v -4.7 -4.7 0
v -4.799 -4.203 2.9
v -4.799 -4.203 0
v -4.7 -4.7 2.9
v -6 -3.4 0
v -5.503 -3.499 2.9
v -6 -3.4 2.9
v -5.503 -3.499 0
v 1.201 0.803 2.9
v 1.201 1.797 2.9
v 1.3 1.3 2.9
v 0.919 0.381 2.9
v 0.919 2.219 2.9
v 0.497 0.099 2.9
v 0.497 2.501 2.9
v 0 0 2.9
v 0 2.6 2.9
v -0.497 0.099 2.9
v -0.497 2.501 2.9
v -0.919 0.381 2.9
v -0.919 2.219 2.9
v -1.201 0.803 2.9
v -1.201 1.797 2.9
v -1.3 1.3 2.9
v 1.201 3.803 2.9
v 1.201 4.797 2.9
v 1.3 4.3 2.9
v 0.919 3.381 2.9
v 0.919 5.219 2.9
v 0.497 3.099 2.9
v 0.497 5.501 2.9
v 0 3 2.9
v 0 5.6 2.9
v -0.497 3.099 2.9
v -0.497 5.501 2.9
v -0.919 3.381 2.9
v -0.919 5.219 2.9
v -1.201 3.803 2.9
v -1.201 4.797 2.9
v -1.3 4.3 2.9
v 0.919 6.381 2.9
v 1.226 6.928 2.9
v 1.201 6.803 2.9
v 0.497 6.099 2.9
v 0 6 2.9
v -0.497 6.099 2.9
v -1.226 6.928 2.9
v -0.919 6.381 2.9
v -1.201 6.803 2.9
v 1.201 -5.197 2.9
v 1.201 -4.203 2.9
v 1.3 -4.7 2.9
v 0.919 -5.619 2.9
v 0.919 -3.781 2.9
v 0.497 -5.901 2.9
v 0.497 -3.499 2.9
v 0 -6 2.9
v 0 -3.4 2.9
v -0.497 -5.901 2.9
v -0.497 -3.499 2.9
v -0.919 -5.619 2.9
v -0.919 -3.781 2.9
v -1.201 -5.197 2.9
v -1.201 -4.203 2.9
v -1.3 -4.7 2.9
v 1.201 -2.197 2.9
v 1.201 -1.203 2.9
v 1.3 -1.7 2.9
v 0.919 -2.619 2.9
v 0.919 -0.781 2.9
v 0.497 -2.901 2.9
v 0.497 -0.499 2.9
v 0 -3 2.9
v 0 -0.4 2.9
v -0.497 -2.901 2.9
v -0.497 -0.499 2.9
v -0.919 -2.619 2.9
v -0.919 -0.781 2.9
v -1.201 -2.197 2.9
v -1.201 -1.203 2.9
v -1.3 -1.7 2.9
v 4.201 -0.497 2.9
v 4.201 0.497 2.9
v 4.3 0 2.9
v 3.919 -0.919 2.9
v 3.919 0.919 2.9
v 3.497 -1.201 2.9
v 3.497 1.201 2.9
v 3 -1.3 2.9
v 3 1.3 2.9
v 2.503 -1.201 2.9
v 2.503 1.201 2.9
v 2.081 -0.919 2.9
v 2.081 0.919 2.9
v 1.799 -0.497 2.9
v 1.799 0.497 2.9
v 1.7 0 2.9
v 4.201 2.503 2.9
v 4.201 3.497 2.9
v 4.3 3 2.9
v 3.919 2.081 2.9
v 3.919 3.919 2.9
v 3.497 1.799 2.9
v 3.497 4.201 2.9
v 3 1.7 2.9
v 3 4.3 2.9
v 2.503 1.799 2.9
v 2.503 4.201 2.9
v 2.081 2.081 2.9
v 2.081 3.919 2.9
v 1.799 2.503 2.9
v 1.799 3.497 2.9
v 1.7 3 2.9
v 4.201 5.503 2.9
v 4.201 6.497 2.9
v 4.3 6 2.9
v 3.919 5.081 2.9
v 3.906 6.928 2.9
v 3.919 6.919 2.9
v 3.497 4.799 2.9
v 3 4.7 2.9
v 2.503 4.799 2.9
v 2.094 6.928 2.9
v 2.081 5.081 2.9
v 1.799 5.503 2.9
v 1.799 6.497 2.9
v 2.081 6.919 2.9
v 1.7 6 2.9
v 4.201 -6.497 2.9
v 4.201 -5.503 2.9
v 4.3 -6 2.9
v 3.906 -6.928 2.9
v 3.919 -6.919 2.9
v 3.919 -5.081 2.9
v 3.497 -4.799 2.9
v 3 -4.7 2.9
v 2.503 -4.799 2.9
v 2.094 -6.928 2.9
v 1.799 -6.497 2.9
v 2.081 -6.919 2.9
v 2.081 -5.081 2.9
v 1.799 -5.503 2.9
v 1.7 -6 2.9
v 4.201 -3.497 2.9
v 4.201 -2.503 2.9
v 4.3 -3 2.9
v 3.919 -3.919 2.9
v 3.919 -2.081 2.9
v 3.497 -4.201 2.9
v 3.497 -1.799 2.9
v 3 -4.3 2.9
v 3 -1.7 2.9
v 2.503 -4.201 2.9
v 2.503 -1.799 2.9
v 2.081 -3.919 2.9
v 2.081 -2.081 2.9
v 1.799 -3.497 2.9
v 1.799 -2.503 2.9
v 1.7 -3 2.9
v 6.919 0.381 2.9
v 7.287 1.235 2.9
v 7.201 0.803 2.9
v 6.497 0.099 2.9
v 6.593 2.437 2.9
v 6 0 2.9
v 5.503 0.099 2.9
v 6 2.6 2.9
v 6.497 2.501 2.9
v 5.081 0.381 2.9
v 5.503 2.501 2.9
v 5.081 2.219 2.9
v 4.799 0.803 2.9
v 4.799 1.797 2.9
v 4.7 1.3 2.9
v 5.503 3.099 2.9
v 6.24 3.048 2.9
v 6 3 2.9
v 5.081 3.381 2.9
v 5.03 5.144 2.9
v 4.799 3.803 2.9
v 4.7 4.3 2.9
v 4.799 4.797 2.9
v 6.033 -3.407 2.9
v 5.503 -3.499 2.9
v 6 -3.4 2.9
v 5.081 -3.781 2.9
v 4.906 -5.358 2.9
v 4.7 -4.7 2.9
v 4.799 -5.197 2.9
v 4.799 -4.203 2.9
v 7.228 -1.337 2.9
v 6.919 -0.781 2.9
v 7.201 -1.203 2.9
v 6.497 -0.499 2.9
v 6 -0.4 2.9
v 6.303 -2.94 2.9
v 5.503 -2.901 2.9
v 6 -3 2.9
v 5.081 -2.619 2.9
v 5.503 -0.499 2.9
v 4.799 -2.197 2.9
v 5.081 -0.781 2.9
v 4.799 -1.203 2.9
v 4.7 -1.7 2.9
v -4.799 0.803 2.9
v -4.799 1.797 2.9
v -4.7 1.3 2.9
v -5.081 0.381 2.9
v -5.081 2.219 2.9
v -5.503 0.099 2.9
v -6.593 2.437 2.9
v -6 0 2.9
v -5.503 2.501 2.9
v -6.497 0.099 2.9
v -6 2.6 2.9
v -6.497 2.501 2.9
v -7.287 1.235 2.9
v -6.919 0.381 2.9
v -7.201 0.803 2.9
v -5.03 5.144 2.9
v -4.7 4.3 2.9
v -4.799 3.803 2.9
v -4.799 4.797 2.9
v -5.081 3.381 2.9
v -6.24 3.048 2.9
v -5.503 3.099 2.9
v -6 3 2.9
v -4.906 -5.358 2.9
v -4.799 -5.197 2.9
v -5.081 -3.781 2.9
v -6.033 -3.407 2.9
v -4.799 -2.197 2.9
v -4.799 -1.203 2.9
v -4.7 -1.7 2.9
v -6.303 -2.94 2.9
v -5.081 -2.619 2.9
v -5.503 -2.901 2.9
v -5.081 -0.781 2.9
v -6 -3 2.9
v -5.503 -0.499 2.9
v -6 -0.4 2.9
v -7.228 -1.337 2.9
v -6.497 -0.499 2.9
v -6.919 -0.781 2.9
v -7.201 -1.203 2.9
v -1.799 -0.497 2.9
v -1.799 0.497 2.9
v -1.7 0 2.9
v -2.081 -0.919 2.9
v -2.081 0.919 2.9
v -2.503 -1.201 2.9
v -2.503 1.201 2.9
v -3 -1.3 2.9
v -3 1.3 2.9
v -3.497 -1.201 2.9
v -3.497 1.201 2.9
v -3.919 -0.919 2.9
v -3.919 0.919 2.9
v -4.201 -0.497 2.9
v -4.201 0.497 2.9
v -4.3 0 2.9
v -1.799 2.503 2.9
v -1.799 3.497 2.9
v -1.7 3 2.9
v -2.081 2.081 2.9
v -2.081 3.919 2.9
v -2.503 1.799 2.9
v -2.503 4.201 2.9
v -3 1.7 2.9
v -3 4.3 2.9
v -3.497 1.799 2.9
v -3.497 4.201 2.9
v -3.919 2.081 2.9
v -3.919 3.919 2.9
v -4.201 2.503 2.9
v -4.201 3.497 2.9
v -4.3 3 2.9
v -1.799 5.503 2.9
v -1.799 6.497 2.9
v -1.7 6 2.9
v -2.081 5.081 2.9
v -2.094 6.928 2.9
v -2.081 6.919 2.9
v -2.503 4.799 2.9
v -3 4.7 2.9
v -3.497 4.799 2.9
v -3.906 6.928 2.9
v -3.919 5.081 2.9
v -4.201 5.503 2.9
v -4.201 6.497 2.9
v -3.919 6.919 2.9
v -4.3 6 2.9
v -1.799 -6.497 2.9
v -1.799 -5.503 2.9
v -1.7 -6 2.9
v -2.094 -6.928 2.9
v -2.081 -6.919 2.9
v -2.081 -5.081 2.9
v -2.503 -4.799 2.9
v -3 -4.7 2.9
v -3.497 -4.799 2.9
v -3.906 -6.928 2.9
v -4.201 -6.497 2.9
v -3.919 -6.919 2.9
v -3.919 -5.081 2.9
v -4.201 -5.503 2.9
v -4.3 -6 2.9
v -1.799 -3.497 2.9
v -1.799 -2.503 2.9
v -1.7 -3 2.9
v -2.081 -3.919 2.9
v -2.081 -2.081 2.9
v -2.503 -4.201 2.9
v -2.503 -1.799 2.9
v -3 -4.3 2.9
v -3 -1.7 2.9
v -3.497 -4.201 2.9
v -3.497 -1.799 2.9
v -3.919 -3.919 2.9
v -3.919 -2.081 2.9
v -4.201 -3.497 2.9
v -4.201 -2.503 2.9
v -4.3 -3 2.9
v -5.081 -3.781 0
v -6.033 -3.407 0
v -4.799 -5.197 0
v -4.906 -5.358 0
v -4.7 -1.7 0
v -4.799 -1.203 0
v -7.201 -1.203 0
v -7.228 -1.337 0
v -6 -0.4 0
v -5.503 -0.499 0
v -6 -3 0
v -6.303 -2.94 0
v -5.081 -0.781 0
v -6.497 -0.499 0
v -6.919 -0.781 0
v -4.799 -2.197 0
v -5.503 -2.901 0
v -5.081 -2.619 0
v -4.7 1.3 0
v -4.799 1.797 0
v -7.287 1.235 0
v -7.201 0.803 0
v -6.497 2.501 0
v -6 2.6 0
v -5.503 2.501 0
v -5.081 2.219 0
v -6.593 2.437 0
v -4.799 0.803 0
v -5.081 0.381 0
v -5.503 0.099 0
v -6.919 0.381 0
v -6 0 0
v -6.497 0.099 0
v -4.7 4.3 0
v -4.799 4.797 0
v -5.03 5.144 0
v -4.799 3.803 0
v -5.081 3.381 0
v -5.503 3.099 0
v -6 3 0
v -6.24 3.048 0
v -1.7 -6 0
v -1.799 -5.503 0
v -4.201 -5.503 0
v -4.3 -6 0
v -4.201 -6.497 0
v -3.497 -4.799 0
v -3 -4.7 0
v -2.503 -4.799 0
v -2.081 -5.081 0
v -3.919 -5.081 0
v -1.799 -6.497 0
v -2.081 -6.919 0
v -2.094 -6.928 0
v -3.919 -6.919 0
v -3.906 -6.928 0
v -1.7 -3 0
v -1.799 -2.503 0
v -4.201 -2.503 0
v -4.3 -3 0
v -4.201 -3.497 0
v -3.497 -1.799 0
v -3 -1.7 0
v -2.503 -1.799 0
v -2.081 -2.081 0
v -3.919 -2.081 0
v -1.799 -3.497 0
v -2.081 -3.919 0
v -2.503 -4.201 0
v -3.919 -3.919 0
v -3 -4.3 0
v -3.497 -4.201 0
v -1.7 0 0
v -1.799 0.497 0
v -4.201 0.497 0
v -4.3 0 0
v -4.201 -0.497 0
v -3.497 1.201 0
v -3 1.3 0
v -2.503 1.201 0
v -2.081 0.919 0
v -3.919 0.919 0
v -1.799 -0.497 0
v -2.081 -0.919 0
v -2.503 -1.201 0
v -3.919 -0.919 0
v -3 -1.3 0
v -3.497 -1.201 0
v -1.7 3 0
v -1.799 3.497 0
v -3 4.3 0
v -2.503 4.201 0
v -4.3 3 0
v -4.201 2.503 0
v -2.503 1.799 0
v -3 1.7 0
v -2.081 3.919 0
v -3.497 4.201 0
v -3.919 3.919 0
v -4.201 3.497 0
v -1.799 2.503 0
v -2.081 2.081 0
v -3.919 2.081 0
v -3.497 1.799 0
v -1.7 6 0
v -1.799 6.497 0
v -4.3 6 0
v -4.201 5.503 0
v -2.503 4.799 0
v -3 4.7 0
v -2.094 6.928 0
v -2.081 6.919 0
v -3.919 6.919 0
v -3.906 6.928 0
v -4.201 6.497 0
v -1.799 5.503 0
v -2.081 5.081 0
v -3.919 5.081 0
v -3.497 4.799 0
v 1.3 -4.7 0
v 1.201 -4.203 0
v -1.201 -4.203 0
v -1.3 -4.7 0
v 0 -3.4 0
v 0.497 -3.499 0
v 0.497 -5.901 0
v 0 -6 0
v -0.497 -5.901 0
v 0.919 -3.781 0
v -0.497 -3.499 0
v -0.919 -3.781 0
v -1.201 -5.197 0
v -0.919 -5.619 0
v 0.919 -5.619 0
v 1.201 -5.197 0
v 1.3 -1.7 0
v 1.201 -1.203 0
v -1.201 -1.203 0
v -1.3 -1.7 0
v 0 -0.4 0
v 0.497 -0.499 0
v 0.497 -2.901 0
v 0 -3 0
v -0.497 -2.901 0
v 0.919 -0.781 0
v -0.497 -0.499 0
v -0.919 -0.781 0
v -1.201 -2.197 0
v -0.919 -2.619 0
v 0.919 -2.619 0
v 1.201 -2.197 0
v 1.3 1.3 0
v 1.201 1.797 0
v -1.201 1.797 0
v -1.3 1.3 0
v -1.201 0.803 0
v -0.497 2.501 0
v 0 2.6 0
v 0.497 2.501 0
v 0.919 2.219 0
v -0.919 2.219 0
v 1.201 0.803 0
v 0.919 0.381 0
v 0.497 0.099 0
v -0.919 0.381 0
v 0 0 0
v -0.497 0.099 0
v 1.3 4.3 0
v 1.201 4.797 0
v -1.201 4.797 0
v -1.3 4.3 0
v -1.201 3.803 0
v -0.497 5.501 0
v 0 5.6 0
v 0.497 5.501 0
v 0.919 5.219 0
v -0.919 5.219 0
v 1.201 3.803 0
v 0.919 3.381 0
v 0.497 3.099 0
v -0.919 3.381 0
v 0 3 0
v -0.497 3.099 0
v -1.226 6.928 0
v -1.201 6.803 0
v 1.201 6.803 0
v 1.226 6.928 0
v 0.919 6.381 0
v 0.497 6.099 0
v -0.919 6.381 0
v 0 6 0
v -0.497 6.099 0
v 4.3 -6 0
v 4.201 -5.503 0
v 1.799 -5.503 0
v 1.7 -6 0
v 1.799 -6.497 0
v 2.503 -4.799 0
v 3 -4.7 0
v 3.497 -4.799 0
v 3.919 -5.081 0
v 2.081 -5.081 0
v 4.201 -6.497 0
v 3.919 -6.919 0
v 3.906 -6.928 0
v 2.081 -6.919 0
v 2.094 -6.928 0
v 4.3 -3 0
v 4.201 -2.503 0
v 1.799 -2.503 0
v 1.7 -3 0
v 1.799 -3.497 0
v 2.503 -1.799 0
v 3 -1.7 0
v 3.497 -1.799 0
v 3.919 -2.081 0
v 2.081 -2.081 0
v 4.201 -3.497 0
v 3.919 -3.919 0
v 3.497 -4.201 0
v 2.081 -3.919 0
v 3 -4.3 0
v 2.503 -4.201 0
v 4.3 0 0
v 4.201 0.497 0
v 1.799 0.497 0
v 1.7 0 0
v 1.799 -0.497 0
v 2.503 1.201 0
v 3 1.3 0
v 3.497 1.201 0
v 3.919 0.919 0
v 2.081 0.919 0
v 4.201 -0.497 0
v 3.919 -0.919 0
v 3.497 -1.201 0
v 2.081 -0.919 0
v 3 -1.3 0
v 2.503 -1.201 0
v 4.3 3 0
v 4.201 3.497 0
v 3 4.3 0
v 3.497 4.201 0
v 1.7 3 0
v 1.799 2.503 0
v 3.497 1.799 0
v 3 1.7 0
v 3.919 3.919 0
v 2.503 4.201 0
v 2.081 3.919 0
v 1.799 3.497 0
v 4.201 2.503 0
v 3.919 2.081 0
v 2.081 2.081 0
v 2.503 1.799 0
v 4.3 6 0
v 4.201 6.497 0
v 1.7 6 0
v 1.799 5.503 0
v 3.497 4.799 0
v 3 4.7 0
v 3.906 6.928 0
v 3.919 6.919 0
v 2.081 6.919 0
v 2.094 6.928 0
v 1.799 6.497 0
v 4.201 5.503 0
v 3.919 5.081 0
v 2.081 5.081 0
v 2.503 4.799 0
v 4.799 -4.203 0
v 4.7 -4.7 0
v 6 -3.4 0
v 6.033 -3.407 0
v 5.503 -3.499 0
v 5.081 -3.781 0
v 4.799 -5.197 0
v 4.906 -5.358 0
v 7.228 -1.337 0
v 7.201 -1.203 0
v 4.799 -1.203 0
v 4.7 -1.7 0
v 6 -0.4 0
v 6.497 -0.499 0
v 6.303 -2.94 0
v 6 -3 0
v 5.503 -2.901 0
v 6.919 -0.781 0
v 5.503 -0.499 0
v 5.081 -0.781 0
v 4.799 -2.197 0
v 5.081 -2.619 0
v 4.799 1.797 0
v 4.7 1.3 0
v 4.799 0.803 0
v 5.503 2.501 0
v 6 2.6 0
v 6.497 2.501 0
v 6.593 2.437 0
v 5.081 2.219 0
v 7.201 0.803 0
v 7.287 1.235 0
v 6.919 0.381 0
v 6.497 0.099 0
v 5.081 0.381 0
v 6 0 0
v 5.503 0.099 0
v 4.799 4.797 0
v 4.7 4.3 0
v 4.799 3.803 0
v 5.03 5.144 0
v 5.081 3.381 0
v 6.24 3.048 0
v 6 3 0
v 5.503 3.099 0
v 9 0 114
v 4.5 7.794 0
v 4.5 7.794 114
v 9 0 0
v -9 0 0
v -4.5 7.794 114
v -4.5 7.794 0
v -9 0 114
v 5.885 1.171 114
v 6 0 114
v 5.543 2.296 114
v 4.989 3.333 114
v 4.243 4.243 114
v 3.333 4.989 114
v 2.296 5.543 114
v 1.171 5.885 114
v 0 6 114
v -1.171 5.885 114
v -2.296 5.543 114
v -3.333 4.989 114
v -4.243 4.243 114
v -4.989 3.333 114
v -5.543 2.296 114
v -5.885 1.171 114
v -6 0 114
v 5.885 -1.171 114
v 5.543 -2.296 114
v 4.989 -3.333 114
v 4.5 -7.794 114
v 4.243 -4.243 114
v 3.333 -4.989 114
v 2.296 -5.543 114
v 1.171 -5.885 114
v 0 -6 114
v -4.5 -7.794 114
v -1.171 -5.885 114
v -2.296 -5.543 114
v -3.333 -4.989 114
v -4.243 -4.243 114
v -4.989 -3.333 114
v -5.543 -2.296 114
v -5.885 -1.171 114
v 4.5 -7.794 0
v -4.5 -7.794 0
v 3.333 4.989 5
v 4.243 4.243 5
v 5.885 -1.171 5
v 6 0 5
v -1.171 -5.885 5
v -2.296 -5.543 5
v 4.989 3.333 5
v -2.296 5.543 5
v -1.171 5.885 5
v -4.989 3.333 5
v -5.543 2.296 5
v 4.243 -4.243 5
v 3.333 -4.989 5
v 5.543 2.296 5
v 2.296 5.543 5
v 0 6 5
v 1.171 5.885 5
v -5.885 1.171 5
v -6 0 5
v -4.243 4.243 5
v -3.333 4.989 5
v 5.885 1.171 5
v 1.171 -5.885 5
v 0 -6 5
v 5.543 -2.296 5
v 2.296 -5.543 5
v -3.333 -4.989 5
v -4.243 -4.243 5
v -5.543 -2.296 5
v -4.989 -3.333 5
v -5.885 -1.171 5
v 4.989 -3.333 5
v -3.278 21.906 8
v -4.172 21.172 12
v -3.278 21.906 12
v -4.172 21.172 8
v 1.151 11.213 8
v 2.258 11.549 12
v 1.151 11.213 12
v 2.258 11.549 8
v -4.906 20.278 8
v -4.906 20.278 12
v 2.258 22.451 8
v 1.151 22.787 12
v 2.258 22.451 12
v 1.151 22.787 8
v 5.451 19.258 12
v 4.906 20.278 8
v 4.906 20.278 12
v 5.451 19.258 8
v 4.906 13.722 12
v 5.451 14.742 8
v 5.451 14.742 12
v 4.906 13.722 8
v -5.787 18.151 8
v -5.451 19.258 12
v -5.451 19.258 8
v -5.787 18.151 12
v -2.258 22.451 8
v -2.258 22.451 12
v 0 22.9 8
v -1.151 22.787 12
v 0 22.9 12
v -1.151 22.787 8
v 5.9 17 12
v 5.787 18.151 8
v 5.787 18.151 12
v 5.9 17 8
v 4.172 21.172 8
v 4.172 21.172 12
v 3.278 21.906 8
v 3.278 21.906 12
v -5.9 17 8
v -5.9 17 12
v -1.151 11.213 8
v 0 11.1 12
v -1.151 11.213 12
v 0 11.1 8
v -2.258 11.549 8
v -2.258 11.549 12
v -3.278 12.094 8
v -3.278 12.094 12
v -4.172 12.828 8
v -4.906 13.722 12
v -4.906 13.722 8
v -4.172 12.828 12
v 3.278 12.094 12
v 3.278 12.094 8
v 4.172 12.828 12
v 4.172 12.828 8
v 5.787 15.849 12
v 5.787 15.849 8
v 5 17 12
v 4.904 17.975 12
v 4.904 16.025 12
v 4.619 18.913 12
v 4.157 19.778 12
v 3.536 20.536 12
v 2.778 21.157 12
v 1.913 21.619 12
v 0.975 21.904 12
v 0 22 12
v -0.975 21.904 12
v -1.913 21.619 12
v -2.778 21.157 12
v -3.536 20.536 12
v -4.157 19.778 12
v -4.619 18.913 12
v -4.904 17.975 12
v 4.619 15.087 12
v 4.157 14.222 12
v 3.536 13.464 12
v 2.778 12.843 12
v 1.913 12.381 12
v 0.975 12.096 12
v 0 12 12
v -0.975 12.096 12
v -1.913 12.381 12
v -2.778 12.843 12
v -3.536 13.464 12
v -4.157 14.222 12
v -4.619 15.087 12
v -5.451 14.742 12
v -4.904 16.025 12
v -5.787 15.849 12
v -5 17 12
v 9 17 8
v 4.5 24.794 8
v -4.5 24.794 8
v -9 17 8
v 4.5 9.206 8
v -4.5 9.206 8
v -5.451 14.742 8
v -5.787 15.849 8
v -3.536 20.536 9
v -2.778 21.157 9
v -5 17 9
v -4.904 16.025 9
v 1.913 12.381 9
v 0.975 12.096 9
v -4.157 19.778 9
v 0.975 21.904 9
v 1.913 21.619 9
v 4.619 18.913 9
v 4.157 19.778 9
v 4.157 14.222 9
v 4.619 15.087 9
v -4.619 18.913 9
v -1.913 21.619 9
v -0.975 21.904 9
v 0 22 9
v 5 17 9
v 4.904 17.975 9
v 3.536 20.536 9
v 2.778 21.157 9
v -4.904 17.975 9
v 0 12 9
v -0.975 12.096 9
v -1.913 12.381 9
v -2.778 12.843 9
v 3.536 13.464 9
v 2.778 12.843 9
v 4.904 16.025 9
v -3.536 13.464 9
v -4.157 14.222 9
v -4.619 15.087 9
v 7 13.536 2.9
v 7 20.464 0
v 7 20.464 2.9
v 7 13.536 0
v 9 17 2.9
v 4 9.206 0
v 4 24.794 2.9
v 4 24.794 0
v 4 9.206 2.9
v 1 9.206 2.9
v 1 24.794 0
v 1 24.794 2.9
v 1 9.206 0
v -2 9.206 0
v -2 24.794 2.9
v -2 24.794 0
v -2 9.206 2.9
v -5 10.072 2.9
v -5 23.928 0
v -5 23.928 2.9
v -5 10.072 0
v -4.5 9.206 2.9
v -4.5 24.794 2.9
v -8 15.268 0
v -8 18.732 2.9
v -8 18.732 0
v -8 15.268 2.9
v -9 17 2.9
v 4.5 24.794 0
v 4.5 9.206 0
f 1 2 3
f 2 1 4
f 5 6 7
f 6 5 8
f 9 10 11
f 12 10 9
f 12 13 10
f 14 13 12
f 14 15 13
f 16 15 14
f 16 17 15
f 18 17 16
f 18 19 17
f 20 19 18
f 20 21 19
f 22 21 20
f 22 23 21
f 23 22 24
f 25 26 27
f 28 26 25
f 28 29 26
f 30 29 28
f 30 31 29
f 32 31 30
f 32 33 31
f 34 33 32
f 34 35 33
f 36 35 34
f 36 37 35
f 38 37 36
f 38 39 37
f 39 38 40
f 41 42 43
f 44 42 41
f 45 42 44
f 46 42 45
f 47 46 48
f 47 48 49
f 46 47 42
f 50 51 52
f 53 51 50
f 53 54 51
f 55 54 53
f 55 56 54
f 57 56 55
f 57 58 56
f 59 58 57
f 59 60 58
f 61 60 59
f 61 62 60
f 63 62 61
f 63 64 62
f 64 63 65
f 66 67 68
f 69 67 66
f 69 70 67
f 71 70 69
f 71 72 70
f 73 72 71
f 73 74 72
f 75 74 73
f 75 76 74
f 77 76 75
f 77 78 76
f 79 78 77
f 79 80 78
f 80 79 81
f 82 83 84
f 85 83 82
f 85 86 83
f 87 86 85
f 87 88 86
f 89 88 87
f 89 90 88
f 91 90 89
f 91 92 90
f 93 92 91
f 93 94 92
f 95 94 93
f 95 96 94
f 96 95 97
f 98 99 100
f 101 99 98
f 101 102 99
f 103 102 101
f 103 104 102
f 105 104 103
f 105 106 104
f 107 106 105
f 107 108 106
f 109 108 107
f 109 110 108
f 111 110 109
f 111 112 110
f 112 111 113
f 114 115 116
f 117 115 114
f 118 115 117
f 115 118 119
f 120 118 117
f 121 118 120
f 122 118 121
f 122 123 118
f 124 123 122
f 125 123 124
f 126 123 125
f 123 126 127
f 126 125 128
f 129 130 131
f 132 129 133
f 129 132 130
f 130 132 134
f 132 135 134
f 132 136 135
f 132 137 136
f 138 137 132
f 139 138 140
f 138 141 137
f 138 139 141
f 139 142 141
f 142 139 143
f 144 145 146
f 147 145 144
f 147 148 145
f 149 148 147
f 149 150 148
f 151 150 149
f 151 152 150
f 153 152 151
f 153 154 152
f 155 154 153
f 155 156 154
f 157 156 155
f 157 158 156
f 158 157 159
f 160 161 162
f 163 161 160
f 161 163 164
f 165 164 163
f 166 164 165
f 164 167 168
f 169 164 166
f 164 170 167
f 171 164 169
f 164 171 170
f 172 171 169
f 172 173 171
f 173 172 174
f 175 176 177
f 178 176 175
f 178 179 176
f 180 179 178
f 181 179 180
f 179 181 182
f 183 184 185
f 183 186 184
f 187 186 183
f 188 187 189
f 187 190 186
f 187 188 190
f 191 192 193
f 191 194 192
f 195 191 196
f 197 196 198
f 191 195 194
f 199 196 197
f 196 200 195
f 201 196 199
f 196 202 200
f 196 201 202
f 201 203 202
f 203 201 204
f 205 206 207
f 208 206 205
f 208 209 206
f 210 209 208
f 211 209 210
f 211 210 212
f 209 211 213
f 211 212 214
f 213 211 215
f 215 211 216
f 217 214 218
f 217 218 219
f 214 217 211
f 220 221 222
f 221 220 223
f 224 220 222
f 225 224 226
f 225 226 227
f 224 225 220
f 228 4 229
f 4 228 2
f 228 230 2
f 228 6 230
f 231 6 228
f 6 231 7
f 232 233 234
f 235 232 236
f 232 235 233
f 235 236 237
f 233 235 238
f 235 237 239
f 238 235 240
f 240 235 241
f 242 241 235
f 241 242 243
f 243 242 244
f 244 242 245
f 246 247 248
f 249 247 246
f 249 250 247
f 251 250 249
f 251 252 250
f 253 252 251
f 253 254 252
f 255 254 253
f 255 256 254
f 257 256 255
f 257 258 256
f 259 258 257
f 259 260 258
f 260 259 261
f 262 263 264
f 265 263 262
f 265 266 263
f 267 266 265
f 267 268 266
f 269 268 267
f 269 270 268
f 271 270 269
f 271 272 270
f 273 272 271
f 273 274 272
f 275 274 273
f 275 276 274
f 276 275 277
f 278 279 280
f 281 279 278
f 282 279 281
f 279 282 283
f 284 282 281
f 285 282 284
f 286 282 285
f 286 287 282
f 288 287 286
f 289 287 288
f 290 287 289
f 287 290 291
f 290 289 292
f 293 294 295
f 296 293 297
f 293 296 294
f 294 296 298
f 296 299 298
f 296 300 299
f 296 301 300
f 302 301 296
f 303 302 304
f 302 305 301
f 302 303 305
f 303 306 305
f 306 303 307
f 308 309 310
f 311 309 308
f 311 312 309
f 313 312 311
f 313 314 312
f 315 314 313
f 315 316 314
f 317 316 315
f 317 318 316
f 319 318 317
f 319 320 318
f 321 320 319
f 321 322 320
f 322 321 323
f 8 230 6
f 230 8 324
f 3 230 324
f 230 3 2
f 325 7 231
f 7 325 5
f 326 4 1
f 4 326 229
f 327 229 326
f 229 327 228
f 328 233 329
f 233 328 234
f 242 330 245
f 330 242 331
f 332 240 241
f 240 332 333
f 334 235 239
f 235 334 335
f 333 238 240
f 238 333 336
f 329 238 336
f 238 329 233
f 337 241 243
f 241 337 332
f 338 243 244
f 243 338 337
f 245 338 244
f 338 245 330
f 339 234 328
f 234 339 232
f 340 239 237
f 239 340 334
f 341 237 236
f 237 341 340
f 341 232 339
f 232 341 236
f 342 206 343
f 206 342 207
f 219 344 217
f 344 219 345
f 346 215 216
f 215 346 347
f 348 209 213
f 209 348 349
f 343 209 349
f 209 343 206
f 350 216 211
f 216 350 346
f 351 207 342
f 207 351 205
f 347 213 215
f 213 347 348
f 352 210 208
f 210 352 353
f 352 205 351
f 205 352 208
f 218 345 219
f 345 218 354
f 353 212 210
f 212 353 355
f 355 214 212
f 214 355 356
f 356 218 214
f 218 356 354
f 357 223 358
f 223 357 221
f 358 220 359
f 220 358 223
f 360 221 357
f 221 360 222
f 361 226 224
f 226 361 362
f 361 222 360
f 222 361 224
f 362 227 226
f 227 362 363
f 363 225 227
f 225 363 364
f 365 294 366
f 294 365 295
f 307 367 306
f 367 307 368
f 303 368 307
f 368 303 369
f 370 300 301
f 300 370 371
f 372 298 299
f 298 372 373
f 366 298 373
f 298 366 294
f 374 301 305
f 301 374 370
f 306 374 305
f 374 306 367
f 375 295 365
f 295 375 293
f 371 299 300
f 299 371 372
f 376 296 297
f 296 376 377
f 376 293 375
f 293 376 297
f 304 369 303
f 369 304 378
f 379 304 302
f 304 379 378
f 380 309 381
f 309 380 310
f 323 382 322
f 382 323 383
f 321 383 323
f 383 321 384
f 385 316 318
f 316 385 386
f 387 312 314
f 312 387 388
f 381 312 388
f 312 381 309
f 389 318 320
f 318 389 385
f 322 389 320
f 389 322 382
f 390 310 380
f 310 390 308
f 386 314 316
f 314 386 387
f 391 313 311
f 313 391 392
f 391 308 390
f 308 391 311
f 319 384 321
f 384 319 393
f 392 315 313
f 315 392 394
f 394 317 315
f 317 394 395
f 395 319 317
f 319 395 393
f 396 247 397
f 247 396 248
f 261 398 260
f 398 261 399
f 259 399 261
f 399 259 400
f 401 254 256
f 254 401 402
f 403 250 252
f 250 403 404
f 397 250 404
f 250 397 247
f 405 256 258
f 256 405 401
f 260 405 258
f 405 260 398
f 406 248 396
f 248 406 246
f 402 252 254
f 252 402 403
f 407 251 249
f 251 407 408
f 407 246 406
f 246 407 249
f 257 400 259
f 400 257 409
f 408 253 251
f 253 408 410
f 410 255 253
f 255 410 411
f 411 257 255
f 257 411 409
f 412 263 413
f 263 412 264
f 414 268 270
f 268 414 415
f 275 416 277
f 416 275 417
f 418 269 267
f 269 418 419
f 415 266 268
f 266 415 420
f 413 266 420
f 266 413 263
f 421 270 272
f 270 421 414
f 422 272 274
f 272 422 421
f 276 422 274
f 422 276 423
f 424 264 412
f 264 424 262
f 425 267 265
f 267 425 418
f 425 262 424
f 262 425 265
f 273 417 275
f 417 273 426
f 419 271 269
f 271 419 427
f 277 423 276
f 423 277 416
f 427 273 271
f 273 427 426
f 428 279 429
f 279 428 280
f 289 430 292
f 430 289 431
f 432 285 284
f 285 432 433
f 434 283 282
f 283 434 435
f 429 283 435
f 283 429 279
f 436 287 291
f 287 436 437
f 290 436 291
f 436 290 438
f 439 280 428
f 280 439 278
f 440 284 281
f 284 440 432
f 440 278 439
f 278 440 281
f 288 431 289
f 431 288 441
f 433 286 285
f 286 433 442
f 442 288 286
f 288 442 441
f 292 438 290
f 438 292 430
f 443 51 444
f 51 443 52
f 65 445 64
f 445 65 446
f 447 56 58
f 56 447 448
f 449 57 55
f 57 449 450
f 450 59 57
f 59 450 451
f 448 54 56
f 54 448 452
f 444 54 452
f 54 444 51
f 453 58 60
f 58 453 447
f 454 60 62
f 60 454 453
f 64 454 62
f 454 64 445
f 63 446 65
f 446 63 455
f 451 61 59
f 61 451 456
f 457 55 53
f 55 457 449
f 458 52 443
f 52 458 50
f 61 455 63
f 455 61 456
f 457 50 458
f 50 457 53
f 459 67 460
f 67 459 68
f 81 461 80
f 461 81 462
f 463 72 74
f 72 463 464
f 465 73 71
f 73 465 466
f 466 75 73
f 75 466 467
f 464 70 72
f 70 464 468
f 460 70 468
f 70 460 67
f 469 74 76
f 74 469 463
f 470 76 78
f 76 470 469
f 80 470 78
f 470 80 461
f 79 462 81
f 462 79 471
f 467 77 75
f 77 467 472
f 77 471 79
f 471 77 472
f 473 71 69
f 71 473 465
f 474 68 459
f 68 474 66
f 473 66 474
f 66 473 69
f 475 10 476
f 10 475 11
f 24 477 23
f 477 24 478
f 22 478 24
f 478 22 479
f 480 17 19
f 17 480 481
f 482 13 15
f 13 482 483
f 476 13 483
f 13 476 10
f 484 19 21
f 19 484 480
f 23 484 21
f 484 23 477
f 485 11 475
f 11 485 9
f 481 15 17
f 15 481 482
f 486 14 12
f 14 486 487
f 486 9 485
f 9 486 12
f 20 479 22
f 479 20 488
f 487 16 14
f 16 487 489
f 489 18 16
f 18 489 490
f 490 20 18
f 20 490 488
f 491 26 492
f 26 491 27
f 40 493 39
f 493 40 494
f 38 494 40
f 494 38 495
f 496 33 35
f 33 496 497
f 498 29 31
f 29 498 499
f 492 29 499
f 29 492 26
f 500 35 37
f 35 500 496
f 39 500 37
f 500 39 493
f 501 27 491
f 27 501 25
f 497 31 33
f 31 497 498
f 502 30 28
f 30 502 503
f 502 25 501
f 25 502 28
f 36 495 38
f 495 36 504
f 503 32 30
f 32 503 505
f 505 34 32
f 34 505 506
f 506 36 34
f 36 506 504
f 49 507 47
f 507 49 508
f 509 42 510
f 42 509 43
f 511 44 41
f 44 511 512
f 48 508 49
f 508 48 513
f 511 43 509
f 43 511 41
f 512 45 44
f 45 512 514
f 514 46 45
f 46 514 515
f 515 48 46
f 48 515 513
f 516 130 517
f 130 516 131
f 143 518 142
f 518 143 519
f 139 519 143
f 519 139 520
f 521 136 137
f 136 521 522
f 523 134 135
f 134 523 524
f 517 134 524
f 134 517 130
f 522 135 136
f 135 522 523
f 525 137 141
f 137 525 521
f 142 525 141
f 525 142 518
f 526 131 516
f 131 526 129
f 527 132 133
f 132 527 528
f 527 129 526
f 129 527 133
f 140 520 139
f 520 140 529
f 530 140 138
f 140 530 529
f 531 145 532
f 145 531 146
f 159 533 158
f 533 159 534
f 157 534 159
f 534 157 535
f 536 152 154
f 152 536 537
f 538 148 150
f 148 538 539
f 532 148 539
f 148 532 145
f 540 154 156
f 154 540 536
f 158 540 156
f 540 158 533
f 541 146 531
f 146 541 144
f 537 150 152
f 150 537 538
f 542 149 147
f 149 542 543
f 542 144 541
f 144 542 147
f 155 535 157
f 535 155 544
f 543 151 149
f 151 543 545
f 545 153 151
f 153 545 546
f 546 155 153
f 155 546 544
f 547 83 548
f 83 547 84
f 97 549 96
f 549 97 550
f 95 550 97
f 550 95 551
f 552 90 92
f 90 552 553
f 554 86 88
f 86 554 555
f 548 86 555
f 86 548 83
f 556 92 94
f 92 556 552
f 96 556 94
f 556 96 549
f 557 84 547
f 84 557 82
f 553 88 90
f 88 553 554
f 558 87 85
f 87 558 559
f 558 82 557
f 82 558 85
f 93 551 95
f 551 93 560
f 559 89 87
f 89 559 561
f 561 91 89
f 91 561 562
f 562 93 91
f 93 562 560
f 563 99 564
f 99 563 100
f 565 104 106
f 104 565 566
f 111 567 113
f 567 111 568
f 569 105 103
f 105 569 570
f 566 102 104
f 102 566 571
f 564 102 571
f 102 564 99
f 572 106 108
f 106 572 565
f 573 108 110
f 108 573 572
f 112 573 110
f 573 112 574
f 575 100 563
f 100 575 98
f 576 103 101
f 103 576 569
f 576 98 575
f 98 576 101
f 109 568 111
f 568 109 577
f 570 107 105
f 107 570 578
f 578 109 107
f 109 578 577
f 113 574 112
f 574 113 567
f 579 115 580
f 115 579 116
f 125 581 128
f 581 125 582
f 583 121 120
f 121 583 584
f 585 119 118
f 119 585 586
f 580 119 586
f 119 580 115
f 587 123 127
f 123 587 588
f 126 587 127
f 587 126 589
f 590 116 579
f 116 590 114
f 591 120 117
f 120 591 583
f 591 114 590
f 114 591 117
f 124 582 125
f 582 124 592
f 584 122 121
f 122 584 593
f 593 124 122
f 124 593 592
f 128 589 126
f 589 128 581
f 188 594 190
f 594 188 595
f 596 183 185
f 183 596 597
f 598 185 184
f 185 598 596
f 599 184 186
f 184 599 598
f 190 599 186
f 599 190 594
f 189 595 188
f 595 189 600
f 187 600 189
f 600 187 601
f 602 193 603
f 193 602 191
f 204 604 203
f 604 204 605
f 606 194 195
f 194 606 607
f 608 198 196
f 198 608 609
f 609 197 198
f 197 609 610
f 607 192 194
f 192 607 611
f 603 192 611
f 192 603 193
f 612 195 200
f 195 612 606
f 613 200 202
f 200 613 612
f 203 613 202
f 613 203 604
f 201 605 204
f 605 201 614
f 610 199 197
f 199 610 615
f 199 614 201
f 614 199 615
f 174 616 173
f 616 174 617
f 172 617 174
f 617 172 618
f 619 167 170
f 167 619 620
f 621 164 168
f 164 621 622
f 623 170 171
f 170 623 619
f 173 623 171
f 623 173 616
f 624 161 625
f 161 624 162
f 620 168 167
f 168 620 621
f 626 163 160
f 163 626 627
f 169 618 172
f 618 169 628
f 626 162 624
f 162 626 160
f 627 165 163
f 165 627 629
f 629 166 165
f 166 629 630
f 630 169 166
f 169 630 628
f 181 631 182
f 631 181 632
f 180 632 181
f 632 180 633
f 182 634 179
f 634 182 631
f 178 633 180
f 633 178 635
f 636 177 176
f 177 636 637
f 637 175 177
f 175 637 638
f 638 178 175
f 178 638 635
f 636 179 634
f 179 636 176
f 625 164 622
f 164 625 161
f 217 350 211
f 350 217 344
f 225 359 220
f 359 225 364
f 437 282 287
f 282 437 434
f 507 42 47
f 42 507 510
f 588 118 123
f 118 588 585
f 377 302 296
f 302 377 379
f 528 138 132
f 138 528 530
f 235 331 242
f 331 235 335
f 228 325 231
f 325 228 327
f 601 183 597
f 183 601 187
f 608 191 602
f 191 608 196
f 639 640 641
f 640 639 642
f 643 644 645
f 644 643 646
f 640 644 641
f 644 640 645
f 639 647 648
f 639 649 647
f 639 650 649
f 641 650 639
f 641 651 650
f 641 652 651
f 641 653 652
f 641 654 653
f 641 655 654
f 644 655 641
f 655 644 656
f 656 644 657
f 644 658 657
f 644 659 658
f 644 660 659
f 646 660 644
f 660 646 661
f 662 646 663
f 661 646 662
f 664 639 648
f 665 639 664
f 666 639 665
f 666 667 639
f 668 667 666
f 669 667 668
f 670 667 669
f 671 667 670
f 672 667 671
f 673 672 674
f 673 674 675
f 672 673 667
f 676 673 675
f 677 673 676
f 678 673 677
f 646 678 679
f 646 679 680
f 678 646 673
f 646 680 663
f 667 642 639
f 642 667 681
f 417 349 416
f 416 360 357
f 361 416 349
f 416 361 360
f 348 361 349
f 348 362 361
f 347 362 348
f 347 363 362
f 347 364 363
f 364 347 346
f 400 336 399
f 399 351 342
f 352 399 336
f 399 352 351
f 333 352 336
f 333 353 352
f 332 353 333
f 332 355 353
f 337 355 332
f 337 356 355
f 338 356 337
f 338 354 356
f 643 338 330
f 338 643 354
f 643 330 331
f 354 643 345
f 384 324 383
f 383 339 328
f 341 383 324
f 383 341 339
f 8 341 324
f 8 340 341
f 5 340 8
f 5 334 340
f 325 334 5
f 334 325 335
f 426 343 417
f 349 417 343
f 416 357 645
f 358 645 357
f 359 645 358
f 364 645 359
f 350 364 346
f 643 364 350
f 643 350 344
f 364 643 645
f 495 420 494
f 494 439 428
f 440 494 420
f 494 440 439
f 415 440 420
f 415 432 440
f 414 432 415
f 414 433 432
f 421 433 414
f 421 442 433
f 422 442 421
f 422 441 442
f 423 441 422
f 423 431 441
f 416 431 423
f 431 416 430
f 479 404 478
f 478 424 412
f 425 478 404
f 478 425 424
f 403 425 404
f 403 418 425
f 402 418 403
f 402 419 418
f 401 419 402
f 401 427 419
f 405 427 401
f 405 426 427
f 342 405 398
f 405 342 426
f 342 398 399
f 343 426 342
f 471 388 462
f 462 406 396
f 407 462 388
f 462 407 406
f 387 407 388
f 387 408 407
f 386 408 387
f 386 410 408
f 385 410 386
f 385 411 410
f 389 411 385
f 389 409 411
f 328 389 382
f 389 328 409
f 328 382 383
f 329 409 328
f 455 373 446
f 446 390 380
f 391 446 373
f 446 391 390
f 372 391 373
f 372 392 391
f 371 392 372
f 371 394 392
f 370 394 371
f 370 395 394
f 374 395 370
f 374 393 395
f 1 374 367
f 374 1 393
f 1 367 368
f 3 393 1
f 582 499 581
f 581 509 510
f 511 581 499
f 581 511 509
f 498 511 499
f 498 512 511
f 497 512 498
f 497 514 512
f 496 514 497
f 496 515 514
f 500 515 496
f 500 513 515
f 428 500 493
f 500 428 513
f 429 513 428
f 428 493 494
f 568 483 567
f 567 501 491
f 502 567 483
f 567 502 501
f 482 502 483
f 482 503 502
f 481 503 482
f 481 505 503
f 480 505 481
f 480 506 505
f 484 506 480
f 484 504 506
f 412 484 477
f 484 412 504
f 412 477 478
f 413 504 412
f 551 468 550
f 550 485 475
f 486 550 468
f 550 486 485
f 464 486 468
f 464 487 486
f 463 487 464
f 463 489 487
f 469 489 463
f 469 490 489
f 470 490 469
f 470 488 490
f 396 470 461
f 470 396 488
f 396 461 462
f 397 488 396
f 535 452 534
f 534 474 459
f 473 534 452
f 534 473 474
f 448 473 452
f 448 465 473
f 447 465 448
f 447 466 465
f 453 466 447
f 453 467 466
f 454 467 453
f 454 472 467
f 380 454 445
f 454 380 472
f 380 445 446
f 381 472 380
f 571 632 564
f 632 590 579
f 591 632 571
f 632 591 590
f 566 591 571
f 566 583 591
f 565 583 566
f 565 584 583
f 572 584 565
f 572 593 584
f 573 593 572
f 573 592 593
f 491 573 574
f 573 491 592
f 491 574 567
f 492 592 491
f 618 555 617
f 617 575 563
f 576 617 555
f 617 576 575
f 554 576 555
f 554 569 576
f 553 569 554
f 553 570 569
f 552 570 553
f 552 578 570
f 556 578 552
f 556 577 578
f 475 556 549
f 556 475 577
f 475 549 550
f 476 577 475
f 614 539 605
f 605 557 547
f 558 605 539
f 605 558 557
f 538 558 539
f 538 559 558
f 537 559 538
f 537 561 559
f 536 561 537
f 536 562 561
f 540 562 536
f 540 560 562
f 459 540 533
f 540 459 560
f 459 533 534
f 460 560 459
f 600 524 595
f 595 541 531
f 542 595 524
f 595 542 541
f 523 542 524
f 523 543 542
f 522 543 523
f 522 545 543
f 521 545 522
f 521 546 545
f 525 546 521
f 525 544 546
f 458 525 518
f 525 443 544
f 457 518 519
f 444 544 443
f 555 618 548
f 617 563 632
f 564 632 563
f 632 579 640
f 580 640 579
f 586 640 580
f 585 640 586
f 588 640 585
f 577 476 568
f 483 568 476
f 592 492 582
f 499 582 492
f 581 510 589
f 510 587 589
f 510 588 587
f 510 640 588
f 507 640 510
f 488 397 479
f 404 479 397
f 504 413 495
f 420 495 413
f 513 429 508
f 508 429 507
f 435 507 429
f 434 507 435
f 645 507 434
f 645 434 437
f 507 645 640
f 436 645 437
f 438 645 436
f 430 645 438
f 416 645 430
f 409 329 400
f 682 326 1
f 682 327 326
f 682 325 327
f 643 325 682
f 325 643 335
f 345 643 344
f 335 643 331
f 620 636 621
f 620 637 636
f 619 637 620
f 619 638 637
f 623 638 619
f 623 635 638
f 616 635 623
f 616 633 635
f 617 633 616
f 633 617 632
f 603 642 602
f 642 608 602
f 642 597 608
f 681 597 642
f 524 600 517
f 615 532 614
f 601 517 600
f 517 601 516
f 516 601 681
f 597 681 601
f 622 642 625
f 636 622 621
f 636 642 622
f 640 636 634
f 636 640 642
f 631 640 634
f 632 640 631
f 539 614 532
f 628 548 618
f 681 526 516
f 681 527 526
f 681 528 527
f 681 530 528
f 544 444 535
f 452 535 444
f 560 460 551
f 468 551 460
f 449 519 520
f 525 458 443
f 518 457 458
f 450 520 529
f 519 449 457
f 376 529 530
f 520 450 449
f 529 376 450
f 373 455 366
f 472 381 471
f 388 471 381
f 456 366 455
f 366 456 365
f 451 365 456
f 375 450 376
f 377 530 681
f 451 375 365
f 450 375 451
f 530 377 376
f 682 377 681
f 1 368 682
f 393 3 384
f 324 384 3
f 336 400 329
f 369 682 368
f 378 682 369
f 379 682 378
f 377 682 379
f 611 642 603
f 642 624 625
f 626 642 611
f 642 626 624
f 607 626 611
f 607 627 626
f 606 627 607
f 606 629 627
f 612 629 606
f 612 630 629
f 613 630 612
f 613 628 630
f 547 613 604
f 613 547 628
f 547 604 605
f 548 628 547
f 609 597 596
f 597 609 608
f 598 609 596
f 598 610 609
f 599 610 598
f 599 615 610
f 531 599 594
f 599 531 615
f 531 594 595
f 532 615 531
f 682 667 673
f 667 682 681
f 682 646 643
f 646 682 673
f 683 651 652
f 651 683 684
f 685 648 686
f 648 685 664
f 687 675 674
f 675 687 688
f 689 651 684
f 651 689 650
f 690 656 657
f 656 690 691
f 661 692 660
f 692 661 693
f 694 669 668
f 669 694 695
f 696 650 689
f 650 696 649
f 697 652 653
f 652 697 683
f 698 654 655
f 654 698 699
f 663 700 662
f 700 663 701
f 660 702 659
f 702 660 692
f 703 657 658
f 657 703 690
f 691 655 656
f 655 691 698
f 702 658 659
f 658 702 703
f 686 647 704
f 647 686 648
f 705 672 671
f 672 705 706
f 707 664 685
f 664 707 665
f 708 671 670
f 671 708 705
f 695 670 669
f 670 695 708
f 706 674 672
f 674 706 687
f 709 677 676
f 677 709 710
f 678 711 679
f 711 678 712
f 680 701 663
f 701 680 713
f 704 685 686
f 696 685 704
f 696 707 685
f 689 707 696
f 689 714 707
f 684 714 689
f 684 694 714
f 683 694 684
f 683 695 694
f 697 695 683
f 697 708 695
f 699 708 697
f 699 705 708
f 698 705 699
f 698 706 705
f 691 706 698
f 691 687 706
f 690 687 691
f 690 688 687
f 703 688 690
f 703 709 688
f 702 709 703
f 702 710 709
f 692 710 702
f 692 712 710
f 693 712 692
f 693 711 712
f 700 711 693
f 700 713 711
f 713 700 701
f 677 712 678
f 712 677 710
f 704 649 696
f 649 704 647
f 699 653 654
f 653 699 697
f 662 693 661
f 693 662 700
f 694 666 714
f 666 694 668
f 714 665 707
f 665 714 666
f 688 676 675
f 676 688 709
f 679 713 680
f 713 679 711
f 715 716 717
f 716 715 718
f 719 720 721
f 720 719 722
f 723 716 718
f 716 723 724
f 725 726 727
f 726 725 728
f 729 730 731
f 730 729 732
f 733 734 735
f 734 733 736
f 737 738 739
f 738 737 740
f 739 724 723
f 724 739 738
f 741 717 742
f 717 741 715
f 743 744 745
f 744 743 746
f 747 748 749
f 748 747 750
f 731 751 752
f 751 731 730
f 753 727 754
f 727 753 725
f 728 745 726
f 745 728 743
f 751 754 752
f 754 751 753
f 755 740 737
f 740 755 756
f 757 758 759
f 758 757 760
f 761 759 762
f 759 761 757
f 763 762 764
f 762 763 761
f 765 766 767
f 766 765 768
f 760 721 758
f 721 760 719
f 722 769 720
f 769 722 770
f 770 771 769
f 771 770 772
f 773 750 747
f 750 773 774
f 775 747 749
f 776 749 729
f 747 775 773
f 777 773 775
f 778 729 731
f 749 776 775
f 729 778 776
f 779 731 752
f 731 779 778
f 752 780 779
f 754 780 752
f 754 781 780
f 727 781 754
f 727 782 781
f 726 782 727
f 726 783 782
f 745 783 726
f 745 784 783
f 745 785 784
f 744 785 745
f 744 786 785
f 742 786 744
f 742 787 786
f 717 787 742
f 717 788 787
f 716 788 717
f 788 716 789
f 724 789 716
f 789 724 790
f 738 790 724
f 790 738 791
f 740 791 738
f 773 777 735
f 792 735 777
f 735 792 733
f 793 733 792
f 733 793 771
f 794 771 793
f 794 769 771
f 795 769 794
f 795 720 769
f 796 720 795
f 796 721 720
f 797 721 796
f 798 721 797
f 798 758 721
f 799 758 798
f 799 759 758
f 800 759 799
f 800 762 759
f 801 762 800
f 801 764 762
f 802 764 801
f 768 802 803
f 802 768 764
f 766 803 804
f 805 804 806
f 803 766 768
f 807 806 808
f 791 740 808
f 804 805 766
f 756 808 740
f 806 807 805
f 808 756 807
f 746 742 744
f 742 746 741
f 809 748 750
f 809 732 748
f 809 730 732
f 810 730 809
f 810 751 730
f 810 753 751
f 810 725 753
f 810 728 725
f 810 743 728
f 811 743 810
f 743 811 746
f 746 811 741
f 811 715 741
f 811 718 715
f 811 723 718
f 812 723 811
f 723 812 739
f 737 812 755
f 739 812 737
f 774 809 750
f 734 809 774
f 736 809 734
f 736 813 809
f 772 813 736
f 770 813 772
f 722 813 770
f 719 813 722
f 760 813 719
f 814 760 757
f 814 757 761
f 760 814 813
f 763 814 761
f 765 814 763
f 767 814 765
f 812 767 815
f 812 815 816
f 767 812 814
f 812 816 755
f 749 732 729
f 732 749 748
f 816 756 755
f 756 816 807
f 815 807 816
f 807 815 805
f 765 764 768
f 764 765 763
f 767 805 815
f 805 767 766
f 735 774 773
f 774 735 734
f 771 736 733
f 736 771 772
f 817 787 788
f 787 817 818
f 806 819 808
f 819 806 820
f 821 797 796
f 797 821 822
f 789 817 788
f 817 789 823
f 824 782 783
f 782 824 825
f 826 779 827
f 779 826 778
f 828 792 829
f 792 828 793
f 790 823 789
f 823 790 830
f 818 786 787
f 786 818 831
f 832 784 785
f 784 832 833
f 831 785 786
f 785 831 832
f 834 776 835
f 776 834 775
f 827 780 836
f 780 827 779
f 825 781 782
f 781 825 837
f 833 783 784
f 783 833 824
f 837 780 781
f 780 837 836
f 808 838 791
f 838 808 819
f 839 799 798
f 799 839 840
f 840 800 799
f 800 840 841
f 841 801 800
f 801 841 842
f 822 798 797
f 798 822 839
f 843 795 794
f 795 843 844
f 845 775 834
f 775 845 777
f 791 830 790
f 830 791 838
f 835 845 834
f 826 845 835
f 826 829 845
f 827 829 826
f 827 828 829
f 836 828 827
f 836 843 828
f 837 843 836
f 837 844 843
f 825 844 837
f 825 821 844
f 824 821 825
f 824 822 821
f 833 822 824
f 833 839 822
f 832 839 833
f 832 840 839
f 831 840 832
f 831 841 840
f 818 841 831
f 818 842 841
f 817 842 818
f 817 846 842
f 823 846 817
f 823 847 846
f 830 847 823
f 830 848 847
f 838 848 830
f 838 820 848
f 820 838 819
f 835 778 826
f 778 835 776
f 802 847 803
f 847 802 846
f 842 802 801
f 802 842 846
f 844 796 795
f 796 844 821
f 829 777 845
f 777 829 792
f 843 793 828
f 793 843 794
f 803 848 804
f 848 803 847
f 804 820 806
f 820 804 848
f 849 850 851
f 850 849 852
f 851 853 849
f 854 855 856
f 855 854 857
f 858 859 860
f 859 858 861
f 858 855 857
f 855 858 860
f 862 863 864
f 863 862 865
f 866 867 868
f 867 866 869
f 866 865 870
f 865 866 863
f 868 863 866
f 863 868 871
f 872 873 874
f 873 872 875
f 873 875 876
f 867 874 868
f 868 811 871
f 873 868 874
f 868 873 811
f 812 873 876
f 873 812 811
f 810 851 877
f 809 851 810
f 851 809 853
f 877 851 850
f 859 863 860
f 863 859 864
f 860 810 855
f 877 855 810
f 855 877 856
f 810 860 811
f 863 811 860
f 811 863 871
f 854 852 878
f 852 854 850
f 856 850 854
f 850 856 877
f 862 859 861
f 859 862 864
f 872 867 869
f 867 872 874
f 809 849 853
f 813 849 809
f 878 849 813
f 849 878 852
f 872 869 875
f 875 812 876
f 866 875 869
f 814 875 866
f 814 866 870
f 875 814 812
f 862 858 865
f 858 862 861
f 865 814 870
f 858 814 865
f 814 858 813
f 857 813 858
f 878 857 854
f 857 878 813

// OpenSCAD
$doobLength = 109;
$doobTip = 8/2;
$overhang = 5;//

// Main Tube
difference() {
    cylinder(r=$doobTip+$overhang, h=$doobLength+$overhang, $fn=6);
    translate([0,0,$overhang]) cylinder(r=$doobTip+2, h=$doobLength+$overhang, $fn=32);

    // bottom dot grid
    translate([0,0,-0.1]) intersection() {
        cylinder(r=$doobTip+$overhang-1, h=3, $fn=6);

        for (x=[-6:3:6]) for(y=[-6:3:6]) {
            $yOffset = x % 2 == 0 ? y+1.3 : y;
            translate([x,$yOffset,0]) {
                cylinder(r=1.3, h= 3, $fn=16);
            }
        };
    }
}


// lid
rotate([0,180,0]) translate([0,17,-8])  {
    cylinder(r=$doobTip+$overhang, h=5, $fn=6);
    translate([0,0,-4]) difference() {
        cylinder(r=$doobTip+2-0.1, h=4, $fn=32);
        translate([0,0,-1]) cylinder(r=$doobTip+1, h=4, $fn=32);
    }

    translate([0,0,5]) difference() {
        cylinder(r=$doobTip+$overhang, h=3, $fn=6);
        for (x=[-40:6:40]) translate([x,-35,0.1]) cube([3,70,3]);
    }
}
